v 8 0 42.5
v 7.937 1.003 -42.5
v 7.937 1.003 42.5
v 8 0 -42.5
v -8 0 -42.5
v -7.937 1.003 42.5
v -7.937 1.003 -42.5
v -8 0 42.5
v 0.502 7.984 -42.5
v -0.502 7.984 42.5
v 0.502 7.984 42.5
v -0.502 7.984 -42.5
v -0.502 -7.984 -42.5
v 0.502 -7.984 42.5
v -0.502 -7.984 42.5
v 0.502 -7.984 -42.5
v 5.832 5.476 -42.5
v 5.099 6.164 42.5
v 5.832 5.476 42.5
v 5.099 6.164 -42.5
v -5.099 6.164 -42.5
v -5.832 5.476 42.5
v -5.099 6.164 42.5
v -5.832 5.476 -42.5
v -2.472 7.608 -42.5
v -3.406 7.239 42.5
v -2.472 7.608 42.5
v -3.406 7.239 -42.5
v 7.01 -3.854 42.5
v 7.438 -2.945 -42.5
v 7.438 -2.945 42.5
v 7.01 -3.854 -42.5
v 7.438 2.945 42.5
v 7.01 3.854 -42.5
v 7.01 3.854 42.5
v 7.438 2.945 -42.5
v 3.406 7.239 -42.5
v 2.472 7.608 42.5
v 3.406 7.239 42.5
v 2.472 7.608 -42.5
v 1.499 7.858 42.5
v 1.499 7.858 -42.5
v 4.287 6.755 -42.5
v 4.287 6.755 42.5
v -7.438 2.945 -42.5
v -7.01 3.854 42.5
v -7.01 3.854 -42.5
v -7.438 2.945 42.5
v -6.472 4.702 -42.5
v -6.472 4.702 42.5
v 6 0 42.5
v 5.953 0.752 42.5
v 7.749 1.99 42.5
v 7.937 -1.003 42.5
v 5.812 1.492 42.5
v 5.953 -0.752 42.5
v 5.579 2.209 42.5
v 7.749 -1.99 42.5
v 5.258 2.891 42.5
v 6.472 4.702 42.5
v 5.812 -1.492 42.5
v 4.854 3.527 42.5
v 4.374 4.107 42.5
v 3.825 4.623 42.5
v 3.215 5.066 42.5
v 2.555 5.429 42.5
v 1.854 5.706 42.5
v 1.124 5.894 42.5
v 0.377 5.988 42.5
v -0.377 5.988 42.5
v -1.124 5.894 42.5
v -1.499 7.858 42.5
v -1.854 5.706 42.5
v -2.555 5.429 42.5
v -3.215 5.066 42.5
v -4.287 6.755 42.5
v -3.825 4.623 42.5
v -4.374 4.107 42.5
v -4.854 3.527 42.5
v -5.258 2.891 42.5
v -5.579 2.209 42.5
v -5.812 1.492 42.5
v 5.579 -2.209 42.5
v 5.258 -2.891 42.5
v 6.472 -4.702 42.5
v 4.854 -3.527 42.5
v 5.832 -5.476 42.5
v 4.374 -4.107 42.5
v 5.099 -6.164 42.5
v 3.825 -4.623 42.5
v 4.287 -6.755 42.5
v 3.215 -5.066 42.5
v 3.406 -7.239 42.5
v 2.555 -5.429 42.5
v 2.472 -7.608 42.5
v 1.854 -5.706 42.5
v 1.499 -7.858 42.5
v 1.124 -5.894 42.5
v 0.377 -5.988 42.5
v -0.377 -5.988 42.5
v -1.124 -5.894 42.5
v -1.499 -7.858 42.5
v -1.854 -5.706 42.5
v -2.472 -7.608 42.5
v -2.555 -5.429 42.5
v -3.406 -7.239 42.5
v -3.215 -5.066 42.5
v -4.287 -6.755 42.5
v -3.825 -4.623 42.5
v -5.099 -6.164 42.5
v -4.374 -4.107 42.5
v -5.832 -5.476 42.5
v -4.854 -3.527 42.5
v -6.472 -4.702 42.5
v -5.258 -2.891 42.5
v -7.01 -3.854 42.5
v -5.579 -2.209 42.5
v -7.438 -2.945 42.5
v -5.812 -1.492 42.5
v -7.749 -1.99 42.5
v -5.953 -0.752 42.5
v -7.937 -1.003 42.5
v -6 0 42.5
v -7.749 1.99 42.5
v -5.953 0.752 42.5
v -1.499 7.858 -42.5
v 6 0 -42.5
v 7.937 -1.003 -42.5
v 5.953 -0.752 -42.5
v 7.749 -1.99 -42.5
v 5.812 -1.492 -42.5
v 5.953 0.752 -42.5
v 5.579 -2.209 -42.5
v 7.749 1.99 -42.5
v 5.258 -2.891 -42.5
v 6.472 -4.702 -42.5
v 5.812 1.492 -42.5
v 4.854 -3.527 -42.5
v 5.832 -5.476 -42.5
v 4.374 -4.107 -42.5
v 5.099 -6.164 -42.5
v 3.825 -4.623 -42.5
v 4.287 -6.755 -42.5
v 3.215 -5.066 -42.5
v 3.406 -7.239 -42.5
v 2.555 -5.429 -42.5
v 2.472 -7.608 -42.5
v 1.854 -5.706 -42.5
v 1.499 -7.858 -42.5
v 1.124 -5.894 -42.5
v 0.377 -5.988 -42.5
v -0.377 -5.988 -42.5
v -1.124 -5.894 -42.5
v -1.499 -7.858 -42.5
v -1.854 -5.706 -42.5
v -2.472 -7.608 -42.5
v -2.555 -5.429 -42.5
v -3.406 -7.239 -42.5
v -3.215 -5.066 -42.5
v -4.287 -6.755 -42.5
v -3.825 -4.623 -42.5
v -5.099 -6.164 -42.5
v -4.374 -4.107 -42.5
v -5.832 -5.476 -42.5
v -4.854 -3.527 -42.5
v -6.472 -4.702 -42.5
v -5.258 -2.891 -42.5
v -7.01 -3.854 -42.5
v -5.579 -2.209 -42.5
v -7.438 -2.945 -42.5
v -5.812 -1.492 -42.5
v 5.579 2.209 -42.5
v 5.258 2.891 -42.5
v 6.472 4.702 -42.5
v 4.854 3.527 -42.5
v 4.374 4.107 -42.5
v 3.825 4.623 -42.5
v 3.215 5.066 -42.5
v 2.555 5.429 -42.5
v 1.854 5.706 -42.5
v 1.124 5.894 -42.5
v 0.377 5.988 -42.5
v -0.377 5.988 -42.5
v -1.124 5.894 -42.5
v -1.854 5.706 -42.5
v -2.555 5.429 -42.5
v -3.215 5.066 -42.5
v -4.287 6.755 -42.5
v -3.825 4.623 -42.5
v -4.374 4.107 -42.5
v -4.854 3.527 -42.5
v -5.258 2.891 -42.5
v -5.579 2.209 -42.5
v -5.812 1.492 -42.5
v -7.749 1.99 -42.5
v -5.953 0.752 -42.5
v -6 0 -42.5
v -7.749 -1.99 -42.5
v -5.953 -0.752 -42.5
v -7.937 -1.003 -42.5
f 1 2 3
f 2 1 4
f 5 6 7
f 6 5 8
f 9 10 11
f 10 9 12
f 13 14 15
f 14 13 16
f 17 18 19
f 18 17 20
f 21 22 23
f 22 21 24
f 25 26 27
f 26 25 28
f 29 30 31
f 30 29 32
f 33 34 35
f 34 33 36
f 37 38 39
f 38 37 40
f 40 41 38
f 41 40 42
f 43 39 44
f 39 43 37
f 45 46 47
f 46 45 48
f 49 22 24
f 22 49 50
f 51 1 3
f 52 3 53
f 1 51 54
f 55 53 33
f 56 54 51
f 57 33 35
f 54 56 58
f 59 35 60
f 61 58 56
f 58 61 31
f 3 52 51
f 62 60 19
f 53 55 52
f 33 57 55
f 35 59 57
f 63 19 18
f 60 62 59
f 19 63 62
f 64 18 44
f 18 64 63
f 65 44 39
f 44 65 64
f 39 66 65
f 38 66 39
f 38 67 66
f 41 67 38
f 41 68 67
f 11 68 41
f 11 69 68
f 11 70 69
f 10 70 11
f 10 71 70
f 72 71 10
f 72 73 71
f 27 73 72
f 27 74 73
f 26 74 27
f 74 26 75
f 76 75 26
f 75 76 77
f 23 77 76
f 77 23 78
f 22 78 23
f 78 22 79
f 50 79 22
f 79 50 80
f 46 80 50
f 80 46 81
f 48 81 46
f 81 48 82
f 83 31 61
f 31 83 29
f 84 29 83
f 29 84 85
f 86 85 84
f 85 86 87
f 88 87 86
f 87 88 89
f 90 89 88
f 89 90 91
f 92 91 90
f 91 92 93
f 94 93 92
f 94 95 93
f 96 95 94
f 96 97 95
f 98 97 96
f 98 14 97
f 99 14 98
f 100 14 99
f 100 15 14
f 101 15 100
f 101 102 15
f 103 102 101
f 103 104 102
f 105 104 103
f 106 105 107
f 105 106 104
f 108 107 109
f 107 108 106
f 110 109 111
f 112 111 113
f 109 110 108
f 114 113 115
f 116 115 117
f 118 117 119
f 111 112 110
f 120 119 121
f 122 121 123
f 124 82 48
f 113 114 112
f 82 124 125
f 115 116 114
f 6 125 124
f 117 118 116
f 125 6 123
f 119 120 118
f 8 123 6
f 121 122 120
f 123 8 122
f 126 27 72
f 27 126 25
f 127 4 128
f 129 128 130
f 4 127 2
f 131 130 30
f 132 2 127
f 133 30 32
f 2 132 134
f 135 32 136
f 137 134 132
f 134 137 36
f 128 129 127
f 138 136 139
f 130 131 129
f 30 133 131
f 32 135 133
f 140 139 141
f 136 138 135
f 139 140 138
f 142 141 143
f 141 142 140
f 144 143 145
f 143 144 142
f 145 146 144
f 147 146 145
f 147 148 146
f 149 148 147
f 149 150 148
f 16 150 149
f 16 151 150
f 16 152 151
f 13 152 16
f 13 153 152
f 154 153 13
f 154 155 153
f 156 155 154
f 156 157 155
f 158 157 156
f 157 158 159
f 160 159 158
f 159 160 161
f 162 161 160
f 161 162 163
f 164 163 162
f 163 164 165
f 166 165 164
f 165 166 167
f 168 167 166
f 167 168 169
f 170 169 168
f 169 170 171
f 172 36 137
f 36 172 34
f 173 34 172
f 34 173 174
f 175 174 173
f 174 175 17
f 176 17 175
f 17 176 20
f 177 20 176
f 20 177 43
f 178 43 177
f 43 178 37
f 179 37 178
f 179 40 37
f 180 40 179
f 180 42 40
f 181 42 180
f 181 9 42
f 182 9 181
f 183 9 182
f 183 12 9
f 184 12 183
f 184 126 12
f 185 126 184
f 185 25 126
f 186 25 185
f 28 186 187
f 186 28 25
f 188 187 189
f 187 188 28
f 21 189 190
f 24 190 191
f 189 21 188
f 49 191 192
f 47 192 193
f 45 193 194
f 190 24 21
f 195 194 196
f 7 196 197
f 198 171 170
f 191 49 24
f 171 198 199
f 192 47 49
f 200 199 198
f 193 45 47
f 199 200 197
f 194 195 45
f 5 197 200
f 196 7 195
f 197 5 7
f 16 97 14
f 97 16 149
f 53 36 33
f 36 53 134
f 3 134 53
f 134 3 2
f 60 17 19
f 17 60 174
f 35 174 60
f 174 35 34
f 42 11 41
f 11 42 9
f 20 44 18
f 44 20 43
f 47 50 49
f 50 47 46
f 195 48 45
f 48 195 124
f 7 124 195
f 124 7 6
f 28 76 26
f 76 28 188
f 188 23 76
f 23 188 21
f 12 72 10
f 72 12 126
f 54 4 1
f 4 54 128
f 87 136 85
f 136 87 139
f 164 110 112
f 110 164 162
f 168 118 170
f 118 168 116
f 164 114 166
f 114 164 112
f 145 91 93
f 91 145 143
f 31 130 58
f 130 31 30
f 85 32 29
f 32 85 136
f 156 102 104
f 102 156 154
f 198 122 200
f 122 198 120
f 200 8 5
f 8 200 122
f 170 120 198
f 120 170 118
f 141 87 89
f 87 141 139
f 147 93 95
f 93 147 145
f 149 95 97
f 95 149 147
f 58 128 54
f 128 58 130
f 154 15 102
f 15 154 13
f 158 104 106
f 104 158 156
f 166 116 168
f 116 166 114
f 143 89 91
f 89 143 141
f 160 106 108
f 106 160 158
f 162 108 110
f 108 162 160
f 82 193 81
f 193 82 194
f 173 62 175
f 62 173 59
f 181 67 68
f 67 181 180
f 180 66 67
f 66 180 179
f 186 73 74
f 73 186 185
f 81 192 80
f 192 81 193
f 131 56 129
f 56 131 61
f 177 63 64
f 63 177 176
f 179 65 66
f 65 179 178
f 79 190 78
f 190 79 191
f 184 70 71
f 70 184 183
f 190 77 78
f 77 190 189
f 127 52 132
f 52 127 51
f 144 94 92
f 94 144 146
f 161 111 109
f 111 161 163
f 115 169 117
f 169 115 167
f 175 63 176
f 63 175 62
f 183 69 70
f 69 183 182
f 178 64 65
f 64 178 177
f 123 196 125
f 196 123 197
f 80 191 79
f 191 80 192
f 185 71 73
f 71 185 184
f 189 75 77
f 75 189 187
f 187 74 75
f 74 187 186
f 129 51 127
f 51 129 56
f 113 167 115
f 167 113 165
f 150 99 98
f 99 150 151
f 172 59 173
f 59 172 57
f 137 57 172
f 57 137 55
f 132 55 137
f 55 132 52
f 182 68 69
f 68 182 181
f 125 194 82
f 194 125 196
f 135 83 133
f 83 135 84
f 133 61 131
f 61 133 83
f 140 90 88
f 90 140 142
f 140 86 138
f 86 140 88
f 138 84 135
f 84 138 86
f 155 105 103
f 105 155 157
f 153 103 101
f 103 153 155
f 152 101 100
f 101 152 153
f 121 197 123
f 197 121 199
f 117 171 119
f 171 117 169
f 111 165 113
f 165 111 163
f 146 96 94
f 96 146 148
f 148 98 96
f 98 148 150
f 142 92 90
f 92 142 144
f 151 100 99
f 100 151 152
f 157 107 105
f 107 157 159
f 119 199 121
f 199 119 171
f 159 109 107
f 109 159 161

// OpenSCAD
$fn = 50;


difference() {
	union() {
		translate(v = [0, 0, -42.5000000000]) {
			cylinder(h = 85, r = 8.0000000000);
		}
	}
	union() {
		translate(v = [0, 0, -100.0000000000]) {
			cylinder(h = 200, r = 6);
		}
	}
}
